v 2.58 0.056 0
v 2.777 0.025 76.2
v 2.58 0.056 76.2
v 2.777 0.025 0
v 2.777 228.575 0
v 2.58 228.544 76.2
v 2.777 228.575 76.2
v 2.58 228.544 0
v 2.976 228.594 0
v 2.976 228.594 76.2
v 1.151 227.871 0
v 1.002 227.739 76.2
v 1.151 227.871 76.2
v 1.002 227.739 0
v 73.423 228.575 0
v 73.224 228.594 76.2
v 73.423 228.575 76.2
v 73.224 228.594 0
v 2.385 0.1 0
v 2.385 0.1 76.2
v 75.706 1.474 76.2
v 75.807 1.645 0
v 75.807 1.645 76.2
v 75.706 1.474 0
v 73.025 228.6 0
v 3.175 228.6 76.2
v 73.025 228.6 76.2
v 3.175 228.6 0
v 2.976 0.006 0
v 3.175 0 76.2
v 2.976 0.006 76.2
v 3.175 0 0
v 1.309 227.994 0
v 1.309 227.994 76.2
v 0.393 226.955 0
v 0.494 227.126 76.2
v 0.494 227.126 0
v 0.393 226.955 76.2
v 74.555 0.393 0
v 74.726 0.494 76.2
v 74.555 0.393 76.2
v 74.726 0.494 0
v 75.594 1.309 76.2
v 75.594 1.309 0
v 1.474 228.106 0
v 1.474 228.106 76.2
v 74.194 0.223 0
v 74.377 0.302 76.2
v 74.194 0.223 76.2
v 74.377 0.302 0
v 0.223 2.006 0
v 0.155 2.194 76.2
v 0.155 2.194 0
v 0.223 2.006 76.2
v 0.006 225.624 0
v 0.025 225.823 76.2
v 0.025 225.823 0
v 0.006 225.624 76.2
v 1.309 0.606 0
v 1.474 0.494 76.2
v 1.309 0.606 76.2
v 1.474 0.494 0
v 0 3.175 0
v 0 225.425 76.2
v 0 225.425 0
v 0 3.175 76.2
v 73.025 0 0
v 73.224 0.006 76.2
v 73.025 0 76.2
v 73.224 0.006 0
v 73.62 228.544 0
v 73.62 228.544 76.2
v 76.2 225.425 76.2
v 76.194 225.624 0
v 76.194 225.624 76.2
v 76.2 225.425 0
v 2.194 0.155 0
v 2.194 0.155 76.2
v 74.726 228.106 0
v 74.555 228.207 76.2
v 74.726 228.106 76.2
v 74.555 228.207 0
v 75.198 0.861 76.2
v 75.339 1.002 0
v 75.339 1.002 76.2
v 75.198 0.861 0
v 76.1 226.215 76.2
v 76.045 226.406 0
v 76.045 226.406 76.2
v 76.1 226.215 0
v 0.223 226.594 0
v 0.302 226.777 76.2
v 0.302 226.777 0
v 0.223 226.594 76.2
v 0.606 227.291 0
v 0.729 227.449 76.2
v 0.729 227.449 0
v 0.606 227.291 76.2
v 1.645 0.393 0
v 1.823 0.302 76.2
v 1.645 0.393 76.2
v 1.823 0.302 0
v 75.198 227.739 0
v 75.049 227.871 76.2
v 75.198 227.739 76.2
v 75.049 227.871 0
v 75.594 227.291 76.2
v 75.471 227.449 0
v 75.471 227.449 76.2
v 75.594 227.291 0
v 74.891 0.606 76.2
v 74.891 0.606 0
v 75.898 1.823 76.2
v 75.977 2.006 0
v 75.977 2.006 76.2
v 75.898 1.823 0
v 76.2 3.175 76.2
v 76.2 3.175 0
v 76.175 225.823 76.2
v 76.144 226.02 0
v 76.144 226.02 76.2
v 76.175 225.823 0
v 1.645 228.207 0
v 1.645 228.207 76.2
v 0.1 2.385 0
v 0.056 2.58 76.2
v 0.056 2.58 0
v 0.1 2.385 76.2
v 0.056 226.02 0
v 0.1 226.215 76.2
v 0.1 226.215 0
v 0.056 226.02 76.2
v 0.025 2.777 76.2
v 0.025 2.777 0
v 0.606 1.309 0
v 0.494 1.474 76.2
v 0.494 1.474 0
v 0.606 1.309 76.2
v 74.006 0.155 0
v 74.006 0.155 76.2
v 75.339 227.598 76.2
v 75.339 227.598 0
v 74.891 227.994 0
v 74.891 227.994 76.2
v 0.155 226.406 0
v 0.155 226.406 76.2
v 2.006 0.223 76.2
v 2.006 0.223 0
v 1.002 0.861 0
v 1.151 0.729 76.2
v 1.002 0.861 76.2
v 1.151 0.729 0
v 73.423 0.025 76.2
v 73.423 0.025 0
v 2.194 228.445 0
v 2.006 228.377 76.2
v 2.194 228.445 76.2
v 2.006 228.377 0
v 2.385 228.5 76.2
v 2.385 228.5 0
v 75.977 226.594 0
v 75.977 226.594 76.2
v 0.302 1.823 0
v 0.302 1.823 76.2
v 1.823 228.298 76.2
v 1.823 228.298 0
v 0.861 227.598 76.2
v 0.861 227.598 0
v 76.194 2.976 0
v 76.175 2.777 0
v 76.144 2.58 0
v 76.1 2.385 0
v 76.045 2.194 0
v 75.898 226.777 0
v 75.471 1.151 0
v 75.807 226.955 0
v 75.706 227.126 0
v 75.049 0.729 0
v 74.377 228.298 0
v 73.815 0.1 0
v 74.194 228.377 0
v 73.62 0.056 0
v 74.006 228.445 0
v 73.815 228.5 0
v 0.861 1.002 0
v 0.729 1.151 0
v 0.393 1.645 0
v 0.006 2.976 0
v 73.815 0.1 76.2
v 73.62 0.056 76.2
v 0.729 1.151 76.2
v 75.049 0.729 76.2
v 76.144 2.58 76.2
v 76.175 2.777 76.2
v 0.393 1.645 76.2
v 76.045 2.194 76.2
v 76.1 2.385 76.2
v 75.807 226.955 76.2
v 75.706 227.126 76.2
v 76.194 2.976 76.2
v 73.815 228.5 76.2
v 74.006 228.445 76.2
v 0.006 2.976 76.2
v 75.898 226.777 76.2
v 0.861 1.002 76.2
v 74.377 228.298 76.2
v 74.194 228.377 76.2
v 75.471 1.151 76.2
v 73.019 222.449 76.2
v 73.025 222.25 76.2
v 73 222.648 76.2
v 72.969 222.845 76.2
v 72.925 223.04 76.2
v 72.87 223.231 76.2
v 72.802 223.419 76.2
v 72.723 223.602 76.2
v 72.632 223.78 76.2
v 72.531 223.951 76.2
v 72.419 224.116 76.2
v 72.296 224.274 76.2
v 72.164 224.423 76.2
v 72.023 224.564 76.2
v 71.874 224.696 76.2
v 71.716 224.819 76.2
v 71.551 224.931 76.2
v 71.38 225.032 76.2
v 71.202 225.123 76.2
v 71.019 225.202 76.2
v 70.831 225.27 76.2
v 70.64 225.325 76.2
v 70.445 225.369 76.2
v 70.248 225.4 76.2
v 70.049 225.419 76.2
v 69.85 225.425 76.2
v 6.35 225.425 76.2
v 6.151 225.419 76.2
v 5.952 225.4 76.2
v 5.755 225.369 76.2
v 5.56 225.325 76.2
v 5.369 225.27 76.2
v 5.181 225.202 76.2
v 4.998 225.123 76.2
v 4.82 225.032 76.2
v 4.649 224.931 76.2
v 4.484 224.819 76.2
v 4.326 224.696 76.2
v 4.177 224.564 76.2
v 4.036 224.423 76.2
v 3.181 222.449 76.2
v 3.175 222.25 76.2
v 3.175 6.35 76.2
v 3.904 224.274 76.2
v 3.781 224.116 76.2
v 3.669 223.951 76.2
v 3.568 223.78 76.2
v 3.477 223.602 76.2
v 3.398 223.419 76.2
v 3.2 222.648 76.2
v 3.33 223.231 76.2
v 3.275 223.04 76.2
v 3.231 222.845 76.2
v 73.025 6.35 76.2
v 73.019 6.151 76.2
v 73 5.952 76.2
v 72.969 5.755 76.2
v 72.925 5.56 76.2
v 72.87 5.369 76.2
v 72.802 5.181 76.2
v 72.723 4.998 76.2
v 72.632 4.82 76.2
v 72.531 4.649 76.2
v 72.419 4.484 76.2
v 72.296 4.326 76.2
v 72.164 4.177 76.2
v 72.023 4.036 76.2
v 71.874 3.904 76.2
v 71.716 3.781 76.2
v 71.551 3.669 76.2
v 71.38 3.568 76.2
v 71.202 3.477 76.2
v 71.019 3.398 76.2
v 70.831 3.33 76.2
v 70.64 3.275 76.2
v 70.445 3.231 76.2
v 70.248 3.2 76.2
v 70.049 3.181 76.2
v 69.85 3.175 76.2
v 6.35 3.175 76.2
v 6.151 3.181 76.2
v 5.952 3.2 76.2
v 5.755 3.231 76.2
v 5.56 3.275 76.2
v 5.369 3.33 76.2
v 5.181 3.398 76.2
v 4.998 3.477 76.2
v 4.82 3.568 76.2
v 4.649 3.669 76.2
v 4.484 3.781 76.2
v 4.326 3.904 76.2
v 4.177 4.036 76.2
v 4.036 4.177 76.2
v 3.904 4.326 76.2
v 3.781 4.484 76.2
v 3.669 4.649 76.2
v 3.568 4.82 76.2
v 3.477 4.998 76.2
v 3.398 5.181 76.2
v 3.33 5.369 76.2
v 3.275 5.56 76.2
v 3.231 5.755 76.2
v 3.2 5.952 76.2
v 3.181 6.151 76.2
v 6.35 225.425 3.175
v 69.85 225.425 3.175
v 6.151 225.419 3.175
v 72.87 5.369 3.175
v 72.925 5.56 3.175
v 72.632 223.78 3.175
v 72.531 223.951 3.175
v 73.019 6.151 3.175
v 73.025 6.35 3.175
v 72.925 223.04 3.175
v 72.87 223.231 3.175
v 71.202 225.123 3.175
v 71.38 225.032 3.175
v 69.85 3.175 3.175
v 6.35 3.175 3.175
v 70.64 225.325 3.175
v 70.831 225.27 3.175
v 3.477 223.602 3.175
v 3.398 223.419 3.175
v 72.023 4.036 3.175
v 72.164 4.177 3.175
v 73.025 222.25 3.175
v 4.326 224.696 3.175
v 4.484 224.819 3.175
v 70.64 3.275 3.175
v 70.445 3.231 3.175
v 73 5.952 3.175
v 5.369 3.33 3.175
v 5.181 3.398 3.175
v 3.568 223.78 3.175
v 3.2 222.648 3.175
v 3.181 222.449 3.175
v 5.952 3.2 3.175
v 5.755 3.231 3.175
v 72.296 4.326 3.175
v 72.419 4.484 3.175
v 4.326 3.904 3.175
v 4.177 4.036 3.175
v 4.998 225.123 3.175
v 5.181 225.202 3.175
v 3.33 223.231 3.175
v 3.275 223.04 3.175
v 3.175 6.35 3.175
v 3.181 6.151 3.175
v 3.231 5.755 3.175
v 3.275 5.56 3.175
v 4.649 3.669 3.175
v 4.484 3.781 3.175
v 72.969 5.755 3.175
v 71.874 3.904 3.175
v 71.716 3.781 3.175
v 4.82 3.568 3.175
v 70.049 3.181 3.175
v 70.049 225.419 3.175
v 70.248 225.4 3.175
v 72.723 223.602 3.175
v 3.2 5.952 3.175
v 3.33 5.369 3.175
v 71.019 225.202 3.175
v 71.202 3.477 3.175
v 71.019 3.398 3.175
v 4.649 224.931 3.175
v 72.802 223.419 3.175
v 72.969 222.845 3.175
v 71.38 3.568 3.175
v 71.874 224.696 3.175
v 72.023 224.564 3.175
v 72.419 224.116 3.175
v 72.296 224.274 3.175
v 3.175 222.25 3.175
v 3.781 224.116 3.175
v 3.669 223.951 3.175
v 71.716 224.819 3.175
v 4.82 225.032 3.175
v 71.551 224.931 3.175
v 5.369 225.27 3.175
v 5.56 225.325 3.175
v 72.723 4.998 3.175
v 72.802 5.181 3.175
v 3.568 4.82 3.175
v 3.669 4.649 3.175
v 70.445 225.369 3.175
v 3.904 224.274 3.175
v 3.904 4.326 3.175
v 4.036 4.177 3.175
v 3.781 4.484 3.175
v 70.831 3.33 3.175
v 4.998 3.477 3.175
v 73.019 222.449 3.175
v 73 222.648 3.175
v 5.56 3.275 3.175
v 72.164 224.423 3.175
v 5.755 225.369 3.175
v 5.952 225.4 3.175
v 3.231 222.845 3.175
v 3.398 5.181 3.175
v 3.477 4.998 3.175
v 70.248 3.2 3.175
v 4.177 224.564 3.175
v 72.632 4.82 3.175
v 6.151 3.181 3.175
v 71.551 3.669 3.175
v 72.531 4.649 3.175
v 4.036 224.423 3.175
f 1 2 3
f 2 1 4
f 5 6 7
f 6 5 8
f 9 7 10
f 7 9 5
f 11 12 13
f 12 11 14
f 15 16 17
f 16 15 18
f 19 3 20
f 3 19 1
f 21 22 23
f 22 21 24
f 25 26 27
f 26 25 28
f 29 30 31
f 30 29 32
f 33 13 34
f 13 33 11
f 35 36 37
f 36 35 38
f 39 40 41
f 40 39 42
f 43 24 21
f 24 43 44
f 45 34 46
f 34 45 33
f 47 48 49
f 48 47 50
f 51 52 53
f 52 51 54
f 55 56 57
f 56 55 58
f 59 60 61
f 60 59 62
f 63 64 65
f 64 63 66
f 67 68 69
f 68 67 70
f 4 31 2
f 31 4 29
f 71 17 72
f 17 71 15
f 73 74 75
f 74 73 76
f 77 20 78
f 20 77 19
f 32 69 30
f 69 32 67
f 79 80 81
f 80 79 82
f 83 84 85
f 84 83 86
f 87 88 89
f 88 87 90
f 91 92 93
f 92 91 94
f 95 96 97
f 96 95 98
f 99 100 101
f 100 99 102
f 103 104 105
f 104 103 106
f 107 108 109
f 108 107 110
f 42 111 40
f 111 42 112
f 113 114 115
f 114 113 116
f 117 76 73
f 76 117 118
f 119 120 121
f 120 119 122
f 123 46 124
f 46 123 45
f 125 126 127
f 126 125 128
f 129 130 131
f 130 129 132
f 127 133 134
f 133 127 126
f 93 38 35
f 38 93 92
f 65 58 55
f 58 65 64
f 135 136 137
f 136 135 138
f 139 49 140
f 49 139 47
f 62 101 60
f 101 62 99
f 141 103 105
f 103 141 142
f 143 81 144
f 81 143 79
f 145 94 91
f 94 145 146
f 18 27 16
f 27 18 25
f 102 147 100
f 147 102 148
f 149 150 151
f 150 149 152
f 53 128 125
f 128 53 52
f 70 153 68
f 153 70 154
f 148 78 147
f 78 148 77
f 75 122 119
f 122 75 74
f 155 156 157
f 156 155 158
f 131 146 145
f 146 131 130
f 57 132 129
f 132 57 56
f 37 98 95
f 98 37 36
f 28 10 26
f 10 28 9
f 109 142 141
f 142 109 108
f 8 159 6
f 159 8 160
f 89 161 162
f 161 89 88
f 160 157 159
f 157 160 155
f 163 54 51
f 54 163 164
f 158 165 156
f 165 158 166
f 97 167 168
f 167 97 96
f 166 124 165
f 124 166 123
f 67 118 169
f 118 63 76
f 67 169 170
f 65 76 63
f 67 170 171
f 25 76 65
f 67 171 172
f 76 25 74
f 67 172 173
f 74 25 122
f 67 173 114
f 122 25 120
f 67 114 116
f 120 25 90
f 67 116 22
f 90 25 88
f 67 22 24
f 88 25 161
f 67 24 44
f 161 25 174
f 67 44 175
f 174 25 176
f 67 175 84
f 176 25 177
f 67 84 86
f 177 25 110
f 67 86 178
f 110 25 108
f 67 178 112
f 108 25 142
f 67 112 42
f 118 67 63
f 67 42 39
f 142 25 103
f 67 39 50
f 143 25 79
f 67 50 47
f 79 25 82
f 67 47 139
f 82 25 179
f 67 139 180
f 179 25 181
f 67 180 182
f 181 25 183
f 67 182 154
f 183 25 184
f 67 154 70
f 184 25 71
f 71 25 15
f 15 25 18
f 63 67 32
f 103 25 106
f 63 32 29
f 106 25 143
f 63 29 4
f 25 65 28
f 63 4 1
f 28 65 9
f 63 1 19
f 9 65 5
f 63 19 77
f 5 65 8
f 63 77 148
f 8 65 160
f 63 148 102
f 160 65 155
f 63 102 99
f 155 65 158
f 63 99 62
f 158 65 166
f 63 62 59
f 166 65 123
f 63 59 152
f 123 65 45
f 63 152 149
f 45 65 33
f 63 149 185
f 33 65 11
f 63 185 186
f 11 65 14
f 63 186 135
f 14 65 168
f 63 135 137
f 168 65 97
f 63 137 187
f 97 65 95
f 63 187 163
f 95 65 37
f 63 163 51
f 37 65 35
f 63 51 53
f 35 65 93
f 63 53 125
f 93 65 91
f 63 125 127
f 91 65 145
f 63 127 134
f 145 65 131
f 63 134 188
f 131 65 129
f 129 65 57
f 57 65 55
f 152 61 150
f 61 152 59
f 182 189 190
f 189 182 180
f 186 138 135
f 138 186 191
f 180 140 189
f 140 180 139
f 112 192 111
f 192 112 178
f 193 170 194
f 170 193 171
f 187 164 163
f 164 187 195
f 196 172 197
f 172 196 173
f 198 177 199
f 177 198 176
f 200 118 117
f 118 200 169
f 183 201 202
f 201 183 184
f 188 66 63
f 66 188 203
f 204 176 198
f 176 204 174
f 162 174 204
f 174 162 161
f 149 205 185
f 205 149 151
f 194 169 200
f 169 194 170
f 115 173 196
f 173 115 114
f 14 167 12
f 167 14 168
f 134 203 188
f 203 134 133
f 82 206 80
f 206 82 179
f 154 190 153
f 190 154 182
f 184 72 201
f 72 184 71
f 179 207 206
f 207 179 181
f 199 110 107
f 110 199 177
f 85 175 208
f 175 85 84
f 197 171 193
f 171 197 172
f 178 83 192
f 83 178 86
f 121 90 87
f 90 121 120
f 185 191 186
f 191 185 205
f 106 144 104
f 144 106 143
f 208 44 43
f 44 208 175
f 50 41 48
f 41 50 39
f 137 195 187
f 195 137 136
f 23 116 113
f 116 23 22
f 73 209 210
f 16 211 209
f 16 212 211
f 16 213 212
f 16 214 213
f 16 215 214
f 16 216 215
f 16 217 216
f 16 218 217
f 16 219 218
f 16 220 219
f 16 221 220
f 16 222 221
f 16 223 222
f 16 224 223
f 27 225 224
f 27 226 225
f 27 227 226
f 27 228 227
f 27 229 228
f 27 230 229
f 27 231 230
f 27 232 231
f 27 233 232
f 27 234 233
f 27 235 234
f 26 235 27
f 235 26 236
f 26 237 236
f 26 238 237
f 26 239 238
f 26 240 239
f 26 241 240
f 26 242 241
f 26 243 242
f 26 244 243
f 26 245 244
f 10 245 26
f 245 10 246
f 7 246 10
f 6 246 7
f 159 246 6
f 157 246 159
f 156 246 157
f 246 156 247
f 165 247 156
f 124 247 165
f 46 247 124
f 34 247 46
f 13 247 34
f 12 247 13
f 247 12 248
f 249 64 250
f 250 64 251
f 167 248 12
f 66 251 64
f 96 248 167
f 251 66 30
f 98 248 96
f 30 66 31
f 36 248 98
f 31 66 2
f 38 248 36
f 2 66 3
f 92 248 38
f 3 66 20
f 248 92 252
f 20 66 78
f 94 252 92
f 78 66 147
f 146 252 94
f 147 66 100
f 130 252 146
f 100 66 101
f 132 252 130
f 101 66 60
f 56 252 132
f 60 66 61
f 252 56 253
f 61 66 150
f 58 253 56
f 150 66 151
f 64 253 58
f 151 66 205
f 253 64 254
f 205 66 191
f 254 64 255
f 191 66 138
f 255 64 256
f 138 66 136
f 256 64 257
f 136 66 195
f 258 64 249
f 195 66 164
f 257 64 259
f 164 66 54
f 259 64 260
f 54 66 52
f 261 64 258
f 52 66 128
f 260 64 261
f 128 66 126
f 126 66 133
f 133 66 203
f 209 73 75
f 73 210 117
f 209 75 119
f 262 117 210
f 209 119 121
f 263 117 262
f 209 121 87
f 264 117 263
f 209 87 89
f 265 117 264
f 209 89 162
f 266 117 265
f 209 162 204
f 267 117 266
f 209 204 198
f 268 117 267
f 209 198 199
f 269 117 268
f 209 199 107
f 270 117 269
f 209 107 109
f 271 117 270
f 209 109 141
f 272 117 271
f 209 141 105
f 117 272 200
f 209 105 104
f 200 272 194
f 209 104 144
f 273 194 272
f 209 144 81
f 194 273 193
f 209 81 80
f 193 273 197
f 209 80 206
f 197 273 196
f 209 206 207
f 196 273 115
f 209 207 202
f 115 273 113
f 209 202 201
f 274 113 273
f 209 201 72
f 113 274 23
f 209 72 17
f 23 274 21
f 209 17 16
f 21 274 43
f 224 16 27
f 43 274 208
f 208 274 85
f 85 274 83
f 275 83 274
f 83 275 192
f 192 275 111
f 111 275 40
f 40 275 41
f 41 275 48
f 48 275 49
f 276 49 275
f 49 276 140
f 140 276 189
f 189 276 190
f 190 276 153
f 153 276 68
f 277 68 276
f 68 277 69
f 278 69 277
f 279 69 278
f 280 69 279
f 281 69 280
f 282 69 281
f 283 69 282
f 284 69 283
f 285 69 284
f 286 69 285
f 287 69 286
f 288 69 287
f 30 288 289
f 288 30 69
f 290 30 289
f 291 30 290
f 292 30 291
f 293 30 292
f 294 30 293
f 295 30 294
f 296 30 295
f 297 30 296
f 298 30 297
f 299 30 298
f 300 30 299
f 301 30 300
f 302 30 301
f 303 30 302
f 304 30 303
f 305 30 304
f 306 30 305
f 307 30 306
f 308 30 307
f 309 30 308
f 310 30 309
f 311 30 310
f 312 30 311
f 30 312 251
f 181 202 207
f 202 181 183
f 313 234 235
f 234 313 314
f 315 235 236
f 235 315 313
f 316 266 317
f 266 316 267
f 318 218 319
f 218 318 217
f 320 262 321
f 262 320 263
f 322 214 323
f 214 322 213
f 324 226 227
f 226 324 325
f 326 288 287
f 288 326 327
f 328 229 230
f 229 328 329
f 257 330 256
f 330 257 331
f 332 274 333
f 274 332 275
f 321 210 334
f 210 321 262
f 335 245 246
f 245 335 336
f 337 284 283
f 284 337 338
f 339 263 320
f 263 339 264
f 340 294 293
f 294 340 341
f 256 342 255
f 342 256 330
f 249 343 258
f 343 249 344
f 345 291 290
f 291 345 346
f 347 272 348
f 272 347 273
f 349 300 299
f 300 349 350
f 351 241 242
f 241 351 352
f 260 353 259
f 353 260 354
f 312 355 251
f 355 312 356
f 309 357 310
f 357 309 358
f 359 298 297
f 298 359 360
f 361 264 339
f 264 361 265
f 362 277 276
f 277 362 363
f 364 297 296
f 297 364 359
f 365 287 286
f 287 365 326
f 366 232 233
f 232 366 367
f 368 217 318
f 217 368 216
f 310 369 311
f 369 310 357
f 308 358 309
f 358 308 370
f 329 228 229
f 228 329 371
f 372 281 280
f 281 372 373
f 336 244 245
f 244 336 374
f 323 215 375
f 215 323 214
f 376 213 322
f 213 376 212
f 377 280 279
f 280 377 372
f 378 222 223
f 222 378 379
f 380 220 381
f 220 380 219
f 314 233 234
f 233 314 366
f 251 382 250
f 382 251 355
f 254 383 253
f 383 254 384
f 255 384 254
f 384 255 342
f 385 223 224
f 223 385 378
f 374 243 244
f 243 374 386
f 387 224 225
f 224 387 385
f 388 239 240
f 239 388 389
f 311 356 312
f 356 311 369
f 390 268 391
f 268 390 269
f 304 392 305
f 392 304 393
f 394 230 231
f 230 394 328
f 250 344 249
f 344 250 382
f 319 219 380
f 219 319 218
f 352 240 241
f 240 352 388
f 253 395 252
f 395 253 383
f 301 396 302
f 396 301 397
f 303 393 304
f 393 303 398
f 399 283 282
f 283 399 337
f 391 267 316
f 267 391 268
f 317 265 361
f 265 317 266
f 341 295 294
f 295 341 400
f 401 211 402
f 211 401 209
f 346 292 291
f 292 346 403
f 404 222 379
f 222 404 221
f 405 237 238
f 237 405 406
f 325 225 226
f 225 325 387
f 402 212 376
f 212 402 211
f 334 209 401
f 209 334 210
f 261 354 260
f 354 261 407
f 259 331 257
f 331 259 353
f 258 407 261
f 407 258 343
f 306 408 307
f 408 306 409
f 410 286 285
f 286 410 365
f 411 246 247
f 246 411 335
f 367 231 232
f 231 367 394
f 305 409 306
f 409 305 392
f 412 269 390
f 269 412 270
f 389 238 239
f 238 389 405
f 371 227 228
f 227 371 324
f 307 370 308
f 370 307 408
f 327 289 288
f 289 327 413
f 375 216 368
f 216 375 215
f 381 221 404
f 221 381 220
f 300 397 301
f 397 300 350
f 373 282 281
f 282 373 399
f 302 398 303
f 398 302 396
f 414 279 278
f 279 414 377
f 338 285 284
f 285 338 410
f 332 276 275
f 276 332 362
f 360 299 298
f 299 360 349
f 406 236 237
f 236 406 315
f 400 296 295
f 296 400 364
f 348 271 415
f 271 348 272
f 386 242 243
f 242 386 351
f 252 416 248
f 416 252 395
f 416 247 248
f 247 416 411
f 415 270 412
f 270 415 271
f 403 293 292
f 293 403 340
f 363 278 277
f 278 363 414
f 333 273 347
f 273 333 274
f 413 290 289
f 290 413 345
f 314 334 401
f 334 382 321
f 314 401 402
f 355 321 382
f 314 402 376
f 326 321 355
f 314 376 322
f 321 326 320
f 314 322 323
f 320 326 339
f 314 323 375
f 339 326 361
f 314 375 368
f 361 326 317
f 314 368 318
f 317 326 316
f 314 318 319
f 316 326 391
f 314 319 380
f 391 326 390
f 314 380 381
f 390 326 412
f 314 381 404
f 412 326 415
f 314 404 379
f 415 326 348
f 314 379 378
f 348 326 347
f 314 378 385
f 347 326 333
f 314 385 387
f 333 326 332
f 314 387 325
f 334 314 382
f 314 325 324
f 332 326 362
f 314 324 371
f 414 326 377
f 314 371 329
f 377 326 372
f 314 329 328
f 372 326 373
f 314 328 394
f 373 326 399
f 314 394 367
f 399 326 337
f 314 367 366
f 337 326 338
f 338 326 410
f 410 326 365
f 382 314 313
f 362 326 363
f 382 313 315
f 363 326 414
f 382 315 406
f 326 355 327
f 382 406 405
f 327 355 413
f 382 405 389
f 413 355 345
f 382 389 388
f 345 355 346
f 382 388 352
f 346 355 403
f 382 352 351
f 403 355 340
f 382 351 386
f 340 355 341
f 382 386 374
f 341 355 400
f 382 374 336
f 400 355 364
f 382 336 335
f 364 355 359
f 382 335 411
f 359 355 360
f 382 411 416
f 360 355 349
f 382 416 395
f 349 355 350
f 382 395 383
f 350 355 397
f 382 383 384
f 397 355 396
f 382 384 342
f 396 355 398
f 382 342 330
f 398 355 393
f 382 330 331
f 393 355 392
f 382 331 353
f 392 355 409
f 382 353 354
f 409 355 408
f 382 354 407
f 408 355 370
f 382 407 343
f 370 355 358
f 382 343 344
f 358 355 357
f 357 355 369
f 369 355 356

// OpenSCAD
$fn = 100;
EPS = 0.01;

// Default Parameters (inches)
box_width_in = 3; 
box_height_in = 3;    
box_depth_in = 9;     
wall_thickness_in = 0.125;
corner_radius_in = 0.125;  // Internal corner radius  

// Rounded cube module
module rounded_cube(size, radius) {
    x = size[0];
    y = size[1]; 
    z = size[2];
    
    hull() {
        translate([radius, radius, 0])
            cylinder(h = z, r = radius);
        translate([x - radius, radius, 0])
            cylinder(h = z, r = radius);
        translate([x - radius, y - radius, 0])
            cylinder(h = z, r = radius);
        translate([radius, y - radius, 0])
            cylinder(h = z, r = radius);
    }
}

module SockBox(
    width_in = box_width_in,
    height_in = box_height_in, 
    depth_in = box_depth_in,
    wall_thickness_in = wall_thickness_in,
    corner_radius_in = corner_radius_in
) {
    // Convert inches to millimeters
    width_mm = width_in * 25.4;
    height_mm = height_in * 25.4;
    depth_mm = depth_in * 25.4;
    wall_thickness_mm = wall_thickness_in * 25.4;
    corner_radius_mm = corner_radius_in * 25.4;
    
    // Calculate internal dimensions
    int_width = width_mm - (2 * wall_thickness_mm);
    int_depth = depth_mm - (2 * wall_thickness_mm);
    int_height = height_mm - wall_thickness_mm;  // No top wall - open in Z direction
    
    difference() {
        // Outer box - rounded corners
        color("blue", 0.3) {
            rounded_cube([width_mm, depth_mm, height_mm], corner_radius_mm);
        }
        
        // Inner cavity (hollow out the box) - rounded corners
        translate([wall_thickness_mm, wall_thickness_mm, wall_thickness_mm]) {
            color("red", 0.5) {
                rounded_cube([int_width, int_depth, int_height + EPS], corner_radius_mm);
            }
        }
    }
}

// Main
SockBox();
